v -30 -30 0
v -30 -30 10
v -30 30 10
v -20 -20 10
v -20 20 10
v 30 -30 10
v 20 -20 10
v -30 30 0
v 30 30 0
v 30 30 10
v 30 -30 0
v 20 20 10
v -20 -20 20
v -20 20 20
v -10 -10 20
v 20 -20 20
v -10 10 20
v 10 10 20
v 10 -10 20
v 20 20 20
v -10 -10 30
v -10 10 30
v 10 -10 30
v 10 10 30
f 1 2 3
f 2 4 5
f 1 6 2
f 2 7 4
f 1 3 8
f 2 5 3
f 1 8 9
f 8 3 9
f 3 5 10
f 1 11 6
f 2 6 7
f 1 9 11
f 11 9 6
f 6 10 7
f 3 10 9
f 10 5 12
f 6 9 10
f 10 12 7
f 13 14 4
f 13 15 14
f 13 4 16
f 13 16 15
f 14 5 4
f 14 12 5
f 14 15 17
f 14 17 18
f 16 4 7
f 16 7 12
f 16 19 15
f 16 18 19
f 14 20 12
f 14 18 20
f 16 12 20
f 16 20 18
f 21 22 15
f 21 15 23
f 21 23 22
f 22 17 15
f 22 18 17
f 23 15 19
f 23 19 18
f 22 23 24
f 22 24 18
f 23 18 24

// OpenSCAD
// 3段の階段状ピラミッド
step_height = 10;       // 各段の高さ
sizes = [60, 40, 20];   // 各段の一辺の長さ（下から順）

for (i = [0 : len(sizes) - 1]) {
    translate([-sizes[i] / 2, -sizes[i] / 2, i * step_height])
        cube([sizes[i], sizes[i], step_height]);
}
